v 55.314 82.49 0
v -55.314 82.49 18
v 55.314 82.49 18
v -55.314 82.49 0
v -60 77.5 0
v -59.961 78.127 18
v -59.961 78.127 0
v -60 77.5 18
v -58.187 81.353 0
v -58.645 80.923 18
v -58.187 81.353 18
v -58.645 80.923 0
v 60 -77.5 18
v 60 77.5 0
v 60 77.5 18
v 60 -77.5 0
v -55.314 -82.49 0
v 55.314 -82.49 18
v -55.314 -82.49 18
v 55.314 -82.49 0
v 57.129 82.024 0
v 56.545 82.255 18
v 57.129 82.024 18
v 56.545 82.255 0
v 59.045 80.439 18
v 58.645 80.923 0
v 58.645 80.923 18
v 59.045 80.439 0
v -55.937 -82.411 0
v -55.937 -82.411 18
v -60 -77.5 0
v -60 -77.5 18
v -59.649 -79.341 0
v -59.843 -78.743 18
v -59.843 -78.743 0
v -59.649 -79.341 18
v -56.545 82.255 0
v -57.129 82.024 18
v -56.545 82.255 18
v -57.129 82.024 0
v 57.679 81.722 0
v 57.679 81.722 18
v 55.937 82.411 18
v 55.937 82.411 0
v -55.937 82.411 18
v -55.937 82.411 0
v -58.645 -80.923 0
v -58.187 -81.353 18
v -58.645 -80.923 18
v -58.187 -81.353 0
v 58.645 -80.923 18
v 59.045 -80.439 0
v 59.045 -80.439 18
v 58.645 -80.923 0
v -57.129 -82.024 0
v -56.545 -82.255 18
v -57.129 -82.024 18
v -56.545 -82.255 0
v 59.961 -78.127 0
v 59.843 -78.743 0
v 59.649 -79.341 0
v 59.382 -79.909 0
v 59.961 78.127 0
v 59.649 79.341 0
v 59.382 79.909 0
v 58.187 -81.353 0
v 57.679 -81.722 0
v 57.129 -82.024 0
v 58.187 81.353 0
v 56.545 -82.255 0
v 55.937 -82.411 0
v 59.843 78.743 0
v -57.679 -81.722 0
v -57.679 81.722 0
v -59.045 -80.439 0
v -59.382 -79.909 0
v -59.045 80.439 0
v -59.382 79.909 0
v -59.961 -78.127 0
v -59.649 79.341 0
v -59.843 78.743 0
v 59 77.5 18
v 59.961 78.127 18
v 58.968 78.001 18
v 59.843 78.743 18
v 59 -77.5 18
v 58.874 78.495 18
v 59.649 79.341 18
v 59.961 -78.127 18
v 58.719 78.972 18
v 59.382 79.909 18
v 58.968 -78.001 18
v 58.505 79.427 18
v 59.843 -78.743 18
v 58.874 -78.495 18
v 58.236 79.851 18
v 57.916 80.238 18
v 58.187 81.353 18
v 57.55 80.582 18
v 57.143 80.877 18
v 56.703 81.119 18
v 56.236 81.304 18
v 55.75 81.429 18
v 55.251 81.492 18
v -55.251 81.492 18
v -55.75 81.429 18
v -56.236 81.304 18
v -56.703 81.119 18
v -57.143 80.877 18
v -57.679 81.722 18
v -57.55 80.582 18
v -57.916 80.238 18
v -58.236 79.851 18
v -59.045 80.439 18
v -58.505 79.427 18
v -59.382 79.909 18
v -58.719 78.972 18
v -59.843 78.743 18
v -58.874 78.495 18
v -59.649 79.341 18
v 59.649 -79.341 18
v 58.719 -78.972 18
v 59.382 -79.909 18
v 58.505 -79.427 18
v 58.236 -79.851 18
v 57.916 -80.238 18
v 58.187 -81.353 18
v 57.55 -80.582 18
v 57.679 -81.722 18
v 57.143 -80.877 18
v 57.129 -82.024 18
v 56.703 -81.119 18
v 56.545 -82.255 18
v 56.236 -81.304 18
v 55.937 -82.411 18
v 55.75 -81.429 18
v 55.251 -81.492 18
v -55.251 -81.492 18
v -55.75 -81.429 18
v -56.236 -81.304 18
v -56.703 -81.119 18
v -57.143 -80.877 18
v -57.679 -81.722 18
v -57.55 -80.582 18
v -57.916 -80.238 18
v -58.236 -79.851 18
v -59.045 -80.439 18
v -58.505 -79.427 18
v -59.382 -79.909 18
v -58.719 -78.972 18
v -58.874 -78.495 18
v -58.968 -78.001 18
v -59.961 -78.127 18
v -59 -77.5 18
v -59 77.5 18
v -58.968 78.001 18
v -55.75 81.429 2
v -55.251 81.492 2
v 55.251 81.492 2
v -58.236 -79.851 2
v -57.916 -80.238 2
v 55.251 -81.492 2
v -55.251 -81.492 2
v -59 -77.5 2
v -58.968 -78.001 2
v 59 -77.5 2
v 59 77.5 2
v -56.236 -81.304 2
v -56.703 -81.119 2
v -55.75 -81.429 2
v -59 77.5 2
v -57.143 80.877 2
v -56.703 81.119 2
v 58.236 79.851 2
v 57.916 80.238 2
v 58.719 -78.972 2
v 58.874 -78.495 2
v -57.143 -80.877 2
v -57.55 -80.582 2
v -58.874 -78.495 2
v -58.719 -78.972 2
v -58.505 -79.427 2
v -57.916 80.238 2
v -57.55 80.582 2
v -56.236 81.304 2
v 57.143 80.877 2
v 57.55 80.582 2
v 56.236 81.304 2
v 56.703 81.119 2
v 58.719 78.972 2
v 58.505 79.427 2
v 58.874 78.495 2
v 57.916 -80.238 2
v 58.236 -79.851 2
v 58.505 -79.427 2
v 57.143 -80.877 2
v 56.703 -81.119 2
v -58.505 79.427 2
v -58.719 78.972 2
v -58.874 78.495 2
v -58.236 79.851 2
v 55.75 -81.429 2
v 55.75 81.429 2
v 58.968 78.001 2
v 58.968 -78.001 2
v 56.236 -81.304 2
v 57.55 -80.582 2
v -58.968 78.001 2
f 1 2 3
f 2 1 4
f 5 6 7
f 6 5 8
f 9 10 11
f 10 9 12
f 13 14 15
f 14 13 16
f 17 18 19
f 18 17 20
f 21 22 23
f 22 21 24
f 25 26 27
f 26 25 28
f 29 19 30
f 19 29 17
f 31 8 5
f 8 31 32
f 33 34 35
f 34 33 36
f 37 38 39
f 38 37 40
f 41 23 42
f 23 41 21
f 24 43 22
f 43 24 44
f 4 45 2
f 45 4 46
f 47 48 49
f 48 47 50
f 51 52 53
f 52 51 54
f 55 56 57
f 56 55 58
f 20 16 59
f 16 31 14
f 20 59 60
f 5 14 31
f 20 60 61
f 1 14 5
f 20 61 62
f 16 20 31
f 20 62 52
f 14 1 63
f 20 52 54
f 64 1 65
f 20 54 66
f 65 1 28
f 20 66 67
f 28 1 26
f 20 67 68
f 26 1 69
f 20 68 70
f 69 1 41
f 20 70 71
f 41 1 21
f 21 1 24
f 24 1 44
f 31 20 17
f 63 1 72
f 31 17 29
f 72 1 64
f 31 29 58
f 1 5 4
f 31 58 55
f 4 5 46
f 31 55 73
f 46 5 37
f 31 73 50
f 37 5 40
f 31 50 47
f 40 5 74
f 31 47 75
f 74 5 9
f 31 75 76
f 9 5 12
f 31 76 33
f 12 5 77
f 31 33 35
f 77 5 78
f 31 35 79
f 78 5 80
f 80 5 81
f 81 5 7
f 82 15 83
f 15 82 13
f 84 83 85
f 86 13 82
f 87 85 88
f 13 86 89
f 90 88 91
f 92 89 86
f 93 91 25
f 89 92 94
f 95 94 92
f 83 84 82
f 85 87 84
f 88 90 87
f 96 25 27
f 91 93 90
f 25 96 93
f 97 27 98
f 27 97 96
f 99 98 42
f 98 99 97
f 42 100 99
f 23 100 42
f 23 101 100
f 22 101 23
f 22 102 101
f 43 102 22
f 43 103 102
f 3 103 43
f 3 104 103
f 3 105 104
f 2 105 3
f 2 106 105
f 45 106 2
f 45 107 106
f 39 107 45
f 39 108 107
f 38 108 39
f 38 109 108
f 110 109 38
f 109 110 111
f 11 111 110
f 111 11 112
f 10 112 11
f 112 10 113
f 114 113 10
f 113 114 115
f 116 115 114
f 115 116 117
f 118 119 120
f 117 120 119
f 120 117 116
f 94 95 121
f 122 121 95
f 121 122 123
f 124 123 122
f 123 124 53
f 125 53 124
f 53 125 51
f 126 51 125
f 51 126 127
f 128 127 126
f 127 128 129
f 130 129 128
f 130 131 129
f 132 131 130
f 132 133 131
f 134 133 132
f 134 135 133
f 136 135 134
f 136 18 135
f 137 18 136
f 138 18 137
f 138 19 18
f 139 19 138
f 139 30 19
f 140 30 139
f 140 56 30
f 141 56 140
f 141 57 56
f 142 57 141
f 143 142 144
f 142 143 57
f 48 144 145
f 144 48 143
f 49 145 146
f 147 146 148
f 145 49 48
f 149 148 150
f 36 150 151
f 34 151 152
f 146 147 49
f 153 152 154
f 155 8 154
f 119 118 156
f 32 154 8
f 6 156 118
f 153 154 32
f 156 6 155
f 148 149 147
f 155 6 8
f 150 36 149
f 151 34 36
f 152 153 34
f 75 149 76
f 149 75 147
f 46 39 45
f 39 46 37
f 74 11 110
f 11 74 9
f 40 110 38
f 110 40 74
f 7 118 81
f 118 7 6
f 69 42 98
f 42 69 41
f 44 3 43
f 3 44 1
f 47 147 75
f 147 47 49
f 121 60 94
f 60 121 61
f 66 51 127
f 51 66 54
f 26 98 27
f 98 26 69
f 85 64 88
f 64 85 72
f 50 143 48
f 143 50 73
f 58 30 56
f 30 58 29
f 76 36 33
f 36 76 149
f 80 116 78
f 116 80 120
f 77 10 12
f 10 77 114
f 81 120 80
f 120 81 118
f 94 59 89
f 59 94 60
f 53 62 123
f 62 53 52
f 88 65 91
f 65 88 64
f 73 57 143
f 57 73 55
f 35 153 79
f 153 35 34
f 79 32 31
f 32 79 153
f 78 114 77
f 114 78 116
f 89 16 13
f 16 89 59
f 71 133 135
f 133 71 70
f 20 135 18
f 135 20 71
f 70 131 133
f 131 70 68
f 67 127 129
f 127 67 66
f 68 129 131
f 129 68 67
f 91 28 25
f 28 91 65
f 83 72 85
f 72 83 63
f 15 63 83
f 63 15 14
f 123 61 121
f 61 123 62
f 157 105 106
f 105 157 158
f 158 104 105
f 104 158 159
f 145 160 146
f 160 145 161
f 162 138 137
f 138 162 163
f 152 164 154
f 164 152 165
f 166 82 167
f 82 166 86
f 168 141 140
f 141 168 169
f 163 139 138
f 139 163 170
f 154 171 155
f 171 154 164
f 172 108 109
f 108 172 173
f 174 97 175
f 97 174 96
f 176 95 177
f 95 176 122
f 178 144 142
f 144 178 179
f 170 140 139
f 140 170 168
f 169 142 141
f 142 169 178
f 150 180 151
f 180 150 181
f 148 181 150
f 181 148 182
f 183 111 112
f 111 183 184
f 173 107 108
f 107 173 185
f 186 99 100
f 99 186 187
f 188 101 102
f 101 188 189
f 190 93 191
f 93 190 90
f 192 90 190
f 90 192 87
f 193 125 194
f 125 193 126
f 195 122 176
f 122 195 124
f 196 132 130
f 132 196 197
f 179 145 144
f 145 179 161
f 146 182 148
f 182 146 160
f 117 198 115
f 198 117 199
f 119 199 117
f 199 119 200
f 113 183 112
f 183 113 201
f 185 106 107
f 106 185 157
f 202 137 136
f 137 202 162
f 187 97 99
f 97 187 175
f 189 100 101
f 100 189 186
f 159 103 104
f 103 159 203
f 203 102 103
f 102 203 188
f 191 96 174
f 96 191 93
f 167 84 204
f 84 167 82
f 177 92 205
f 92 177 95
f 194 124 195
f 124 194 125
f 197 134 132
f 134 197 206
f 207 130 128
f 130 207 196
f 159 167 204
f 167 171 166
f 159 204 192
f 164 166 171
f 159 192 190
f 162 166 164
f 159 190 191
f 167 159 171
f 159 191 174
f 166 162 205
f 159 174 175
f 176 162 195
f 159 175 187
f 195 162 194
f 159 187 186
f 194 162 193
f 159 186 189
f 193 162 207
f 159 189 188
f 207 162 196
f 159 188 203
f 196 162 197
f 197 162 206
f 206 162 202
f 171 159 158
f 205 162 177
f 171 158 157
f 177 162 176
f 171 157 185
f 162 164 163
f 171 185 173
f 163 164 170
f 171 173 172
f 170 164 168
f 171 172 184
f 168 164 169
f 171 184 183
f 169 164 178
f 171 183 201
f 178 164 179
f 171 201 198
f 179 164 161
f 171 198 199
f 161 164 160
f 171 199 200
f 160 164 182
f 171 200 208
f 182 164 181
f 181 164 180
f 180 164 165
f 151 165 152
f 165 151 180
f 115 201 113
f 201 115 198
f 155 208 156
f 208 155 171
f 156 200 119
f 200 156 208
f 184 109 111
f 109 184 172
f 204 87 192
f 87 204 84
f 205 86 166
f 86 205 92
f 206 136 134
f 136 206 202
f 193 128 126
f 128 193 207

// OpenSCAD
$fn = 50;


difference() {
	union() {
		hull() {
			translate(v = [-55.0000000000, 77.5000000000, 0]) {
				cylinder(h = 18, r = 5);
			}
			translate(v = [55.0000000000, 77.5000000000, 0]) {
				cylinder(h = 18, r = 5);
			}
			translate(v = [-55.0000000000, -77.5000000000, 0]) {
				cylinder(h = 18, r = 5);
			}
			translate(v = [55.0000000000, -77.5000000000, 0]) {
				cylinder(h = 18, r = 5);
			}
		}
	}
	union() {
		translate(v = [0, 0, 2]) {
			hull() {
				translate(v = [-55.0000000000, 77.5000000000, 0]) {
					cylinder(h = 16, r = 4);
				}
				translate(v = [55.0000000000, 77.5000000000, 0]) {
					cylinder(h = 16, r = 4);
				}
				translate(v = [-55.0000000000, -77.5000000000, 0]) {
					cylinder(h = 16, r = 4);
				}
				translate(v = [55.0000000000, -77.5000000000, 0]) {
					cylinder(h = 16, r = 4);
				}
			}
		}
	}
}
